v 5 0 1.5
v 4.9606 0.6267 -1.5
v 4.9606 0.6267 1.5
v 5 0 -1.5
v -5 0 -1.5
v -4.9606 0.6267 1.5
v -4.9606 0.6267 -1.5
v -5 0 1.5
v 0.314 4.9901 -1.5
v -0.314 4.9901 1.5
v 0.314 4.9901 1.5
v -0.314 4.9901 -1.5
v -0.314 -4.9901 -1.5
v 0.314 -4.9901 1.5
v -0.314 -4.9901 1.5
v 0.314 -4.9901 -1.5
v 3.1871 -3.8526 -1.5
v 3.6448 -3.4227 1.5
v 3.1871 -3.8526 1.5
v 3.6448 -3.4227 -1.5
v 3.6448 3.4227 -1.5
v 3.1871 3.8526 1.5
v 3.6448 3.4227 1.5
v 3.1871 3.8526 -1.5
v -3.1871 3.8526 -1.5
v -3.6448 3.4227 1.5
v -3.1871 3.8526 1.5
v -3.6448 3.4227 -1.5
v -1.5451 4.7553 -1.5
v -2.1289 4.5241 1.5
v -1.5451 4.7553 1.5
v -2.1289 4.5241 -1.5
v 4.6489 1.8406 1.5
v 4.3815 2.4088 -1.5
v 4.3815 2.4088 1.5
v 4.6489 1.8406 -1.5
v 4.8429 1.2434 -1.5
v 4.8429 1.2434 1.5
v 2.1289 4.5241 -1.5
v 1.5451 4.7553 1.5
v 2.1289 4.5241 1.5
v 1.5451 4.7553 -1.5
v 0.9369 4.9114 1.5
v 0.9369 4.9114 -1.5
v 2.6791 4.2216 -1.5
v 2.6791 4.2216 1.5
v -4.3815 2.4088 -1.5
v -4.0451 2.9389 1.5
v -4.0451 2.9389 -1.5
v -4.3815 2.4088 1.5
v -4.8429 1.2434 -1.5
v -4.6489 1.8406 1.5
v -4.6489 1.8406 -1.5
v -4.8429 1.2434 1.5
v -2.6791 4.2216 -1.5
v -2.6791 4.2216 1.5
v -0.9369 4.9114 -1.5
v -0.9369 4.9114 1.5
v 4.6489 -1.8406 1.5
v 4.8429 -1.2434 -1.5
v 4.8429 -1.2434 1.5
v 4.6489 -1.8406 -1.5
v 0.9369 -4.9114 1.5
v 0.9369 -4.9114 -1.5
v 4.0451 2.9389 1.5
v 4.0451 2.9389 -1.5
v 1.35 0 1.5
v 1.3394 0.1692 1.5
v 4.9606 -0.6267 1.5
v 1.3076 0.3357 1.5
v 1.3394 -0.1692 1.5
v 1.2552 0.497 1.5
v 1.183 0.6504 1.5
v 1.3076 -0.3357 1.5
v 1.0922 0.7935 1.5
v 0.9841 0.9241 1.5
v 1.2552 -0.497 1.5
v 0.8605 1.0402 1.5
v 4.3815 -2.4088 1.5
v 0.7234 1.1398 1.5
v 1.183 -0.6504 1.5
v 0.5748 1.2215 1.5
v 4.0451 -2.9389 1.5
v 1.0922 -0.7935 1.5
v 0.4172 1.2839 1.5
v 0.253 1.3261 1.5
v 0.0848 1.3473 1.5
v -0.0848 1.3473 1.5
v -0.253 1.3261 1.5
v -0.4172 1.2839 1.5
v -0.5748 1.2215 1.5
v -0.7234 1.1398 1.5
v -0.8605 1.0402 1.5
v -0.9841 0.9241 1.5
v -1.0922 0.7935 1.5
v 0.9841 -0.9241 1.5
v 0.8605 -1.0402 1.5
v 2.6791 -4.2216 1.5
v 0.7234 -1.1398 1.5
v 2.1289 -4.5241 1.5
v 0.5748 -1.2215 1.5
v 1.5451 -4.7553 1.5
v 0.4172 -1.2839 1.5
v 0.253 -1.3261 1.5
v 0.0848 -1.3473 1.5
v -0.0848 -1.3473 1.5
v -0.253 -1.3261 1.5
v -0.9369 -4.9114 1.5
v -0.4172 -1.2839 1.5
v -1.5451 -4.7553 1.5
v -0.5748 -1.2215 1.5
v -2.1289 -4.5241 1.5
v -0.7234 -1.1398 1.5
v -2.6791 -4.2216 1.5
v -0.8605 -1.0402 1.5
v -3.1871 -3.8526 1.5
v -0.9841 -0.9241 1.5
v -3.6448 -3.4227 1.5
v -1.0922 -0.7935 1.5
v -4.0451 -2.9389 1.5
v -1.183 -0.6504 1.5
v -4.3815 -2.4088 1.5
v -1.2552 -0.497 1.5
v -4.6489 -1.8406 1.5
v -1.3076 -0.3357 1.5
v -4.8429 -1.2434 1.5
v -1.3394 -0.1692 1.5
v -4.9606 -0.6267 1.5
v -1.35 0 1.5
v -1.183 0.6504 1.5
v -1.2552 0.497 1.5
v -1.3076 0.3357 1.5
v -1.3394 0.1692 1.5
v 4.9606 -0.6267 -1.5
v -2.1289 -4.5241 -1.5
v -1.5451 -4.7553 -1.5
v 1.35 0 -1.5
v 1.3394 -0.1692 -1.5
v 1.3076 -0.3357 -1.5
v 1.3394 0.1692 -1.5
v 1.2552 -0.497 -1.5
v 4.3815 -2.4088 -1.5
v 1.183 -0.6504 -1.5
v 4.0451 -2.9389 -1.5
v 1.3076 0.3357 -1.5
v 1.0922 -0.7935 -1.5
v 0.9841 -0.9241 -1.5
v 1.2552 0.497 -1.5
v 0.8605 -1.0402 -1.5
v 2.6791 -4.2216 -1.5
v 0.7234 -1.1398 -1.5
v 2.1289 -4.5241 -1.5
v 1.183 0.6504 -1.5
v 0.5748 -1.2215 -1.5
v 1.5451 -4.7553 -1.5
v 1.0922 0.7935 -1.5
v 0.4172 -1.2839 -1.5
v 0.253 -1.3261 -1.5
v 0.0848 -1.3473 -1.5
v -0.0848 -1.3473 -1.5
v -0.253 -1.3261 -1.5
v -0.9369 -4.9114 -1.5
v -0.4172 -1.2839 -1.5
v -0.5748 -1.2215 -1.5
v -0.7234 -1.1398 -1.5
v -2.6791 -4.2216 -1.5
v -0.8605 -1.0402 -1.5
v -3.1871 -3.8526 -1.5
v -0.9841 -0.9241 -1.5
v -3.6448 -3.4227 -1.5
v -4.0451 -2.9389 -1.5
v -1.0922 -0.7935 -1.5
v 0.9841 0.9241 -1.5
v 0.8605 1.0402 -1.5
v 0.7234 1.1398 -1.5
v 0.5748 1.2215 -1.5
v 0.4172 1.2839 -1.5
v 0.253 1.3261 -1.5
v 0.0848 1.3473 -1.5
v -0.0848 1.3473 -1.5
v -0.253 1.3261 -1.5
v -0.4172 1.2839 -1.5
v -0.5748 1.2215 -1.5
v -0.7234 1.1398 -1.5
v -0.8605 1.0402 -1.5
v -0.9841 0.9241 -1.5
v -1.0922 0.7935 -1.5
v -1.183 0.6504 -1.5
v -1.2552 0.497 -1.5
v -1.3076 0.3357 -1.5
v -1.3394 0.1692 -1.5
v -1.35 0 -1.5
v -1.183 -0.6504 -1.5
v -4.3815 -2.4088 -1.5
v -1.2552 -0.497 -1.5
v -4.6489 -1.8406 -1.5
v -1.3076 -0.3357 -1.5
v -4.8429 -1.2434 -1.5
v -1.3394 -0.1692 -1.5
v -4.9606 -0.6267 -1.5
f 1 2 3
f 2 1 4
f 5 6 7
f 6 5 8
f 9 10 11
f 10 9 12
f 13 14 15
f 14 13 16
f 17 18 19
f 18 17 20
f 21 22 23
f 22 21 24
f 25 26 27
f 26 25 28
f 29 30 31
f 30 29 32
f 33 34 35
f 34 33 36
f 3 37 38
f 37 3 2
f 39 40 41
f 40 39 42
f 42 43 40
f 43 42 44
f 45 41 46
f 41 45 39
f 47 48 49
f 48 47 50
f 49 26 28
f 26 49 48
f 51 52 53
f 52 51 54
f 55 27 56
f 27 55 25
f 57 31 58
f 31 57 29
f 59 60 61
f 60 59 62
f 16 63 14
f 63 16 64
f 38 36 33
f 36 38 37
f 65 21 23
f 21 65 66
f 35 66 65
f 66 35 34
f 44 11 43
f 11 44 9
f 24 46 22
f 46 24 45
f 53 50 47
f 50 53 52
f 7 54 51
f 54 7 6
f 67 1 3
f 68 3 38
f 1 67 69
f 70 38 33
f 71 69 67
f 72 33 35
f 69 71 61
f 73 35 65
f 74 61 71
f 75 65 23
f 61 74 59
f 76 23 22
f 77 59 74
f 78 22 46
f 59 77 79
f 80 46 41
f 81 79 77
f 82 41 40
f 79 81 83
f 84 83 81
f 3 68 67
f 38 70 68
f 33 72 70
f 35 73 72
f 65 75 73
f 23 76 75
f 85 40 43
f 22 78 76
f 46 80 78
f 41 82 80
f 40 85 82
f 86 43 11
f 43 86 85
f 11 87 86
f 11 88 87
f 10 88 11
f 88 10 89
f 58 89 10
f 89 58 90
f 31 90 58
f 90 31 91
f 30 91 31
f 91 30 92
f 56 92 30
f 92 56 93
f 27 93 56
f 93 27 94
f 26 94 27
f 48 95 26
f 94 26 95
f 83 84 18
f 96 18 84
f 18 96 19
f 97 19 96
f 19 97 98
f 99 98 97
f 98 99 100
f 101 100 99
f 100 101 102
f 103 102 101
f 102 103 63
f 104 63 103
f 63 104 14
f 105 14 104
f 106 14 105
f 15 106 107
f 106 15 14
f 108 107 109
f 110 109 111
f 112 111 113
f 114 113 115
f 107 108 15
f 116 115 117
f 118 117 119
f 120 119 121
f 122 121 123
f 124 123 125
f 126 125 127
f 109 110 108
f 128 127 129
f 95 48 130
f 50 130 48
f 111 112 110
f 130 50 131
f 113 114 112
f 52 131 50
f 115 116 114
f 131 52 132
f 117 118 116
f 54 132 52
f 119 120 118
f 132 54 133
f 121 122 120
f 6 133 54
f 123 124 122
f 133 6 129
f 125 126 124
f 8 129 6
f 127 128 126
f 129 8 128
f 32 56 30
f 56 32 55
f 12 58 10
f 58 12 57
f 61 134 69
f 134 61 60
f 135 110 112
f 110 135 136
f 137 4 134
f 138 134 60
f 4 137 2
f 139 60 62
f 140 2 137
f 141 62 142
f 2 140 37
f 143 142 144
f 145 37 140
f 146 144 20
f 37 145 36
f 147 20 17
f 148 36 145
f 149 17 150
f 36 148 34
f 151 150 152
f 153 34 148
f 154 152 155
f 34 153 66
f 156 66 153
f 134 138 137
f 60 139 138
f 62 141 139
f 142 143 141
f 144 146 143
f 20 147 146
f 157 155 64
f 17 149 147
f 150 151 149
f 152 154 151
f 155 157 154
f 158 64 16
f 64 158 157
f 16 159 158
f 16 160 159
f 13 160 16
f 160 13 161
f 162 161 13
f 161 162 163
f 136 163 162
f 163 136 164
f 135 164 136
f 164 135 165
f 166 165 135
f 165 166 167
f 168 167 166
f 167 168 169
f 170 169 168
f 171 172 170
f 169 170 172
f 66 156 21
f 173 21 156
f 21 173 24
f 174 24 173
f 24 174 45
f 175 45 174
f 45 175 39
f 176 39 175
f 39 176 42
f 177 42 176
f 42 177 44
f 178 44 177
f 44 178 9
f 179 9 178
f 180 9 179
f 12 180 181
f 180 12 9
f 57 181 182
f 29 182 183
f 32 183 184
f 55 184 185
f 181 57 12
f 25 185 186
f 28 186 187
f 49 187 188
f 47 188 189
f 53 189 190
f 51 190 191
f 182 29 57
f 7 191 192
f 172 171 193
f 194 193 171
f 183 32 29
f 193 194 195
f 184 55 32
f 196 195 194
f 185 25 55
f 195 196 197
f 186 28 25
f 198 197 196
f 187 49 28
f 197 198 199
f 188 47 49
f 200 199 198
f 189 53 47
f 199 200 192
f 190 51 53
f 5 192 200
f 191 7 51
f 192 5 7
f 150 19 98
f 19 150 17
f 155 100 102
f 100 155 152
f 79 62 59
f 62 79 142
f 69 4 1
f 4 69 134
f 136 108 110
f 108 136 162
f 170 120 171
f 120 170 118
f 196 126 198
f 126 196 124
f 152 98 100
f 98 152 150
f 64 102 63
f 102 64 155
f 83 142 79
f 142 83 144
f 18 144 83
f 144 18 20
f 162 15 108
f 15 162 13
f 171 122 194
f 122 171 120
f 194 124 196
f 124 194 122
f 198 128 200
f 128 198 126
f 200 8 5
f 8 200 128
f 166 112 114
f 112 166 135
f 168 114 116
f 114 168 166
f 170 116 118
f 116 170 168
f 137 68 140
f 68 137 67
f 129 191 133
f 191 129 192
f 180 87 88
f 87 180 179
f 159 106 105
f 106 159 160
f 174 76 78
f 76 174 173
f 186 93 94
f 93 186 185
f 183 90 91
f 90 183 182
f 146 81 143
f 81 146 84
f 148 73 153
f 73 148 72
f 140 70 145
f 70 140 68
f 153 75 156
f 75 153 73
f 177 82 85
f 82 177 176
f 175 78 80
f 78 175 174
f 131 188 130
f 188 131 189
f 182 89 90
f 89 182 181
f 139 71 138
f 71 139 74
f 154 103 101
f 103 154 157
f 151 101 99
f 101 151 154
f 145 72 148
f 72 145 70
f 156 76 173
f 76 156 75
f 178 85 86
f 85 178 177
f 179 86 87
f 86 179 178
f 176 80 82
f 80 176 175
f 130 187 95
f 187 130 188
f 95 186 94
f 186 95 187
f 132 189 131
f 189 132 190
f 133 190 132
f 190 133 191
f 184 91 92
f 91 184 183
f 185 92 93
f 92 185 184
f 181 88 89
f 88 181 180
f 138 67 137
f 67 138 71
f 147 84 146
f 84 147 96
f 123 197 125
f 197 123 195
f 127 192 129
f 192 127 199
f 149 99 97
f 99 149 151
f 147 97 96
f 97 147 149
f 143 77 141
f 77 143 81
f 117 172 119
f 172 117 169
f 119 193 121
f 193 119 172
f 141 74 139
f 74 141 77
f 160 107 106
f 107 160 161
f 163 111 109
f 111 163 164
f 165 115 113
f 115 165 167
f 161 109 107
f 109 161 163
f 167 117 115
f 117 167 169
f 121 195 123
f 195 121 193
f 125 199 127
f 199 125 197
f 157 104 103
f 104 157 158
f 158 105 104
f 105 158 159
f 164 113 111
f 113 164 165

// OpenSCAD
$fn = 50;


difference() {
	union() {
		translate(v = [0, 0, -1.5000000000]) {
			cylinder(h = 3, r = 5.0000000000);
		}
	}
	union() {
		translate(v = [0, 0, -100.0000000000]) {
			cylinder(h = 200, r = 1.3500000000);
		}
	}
}
